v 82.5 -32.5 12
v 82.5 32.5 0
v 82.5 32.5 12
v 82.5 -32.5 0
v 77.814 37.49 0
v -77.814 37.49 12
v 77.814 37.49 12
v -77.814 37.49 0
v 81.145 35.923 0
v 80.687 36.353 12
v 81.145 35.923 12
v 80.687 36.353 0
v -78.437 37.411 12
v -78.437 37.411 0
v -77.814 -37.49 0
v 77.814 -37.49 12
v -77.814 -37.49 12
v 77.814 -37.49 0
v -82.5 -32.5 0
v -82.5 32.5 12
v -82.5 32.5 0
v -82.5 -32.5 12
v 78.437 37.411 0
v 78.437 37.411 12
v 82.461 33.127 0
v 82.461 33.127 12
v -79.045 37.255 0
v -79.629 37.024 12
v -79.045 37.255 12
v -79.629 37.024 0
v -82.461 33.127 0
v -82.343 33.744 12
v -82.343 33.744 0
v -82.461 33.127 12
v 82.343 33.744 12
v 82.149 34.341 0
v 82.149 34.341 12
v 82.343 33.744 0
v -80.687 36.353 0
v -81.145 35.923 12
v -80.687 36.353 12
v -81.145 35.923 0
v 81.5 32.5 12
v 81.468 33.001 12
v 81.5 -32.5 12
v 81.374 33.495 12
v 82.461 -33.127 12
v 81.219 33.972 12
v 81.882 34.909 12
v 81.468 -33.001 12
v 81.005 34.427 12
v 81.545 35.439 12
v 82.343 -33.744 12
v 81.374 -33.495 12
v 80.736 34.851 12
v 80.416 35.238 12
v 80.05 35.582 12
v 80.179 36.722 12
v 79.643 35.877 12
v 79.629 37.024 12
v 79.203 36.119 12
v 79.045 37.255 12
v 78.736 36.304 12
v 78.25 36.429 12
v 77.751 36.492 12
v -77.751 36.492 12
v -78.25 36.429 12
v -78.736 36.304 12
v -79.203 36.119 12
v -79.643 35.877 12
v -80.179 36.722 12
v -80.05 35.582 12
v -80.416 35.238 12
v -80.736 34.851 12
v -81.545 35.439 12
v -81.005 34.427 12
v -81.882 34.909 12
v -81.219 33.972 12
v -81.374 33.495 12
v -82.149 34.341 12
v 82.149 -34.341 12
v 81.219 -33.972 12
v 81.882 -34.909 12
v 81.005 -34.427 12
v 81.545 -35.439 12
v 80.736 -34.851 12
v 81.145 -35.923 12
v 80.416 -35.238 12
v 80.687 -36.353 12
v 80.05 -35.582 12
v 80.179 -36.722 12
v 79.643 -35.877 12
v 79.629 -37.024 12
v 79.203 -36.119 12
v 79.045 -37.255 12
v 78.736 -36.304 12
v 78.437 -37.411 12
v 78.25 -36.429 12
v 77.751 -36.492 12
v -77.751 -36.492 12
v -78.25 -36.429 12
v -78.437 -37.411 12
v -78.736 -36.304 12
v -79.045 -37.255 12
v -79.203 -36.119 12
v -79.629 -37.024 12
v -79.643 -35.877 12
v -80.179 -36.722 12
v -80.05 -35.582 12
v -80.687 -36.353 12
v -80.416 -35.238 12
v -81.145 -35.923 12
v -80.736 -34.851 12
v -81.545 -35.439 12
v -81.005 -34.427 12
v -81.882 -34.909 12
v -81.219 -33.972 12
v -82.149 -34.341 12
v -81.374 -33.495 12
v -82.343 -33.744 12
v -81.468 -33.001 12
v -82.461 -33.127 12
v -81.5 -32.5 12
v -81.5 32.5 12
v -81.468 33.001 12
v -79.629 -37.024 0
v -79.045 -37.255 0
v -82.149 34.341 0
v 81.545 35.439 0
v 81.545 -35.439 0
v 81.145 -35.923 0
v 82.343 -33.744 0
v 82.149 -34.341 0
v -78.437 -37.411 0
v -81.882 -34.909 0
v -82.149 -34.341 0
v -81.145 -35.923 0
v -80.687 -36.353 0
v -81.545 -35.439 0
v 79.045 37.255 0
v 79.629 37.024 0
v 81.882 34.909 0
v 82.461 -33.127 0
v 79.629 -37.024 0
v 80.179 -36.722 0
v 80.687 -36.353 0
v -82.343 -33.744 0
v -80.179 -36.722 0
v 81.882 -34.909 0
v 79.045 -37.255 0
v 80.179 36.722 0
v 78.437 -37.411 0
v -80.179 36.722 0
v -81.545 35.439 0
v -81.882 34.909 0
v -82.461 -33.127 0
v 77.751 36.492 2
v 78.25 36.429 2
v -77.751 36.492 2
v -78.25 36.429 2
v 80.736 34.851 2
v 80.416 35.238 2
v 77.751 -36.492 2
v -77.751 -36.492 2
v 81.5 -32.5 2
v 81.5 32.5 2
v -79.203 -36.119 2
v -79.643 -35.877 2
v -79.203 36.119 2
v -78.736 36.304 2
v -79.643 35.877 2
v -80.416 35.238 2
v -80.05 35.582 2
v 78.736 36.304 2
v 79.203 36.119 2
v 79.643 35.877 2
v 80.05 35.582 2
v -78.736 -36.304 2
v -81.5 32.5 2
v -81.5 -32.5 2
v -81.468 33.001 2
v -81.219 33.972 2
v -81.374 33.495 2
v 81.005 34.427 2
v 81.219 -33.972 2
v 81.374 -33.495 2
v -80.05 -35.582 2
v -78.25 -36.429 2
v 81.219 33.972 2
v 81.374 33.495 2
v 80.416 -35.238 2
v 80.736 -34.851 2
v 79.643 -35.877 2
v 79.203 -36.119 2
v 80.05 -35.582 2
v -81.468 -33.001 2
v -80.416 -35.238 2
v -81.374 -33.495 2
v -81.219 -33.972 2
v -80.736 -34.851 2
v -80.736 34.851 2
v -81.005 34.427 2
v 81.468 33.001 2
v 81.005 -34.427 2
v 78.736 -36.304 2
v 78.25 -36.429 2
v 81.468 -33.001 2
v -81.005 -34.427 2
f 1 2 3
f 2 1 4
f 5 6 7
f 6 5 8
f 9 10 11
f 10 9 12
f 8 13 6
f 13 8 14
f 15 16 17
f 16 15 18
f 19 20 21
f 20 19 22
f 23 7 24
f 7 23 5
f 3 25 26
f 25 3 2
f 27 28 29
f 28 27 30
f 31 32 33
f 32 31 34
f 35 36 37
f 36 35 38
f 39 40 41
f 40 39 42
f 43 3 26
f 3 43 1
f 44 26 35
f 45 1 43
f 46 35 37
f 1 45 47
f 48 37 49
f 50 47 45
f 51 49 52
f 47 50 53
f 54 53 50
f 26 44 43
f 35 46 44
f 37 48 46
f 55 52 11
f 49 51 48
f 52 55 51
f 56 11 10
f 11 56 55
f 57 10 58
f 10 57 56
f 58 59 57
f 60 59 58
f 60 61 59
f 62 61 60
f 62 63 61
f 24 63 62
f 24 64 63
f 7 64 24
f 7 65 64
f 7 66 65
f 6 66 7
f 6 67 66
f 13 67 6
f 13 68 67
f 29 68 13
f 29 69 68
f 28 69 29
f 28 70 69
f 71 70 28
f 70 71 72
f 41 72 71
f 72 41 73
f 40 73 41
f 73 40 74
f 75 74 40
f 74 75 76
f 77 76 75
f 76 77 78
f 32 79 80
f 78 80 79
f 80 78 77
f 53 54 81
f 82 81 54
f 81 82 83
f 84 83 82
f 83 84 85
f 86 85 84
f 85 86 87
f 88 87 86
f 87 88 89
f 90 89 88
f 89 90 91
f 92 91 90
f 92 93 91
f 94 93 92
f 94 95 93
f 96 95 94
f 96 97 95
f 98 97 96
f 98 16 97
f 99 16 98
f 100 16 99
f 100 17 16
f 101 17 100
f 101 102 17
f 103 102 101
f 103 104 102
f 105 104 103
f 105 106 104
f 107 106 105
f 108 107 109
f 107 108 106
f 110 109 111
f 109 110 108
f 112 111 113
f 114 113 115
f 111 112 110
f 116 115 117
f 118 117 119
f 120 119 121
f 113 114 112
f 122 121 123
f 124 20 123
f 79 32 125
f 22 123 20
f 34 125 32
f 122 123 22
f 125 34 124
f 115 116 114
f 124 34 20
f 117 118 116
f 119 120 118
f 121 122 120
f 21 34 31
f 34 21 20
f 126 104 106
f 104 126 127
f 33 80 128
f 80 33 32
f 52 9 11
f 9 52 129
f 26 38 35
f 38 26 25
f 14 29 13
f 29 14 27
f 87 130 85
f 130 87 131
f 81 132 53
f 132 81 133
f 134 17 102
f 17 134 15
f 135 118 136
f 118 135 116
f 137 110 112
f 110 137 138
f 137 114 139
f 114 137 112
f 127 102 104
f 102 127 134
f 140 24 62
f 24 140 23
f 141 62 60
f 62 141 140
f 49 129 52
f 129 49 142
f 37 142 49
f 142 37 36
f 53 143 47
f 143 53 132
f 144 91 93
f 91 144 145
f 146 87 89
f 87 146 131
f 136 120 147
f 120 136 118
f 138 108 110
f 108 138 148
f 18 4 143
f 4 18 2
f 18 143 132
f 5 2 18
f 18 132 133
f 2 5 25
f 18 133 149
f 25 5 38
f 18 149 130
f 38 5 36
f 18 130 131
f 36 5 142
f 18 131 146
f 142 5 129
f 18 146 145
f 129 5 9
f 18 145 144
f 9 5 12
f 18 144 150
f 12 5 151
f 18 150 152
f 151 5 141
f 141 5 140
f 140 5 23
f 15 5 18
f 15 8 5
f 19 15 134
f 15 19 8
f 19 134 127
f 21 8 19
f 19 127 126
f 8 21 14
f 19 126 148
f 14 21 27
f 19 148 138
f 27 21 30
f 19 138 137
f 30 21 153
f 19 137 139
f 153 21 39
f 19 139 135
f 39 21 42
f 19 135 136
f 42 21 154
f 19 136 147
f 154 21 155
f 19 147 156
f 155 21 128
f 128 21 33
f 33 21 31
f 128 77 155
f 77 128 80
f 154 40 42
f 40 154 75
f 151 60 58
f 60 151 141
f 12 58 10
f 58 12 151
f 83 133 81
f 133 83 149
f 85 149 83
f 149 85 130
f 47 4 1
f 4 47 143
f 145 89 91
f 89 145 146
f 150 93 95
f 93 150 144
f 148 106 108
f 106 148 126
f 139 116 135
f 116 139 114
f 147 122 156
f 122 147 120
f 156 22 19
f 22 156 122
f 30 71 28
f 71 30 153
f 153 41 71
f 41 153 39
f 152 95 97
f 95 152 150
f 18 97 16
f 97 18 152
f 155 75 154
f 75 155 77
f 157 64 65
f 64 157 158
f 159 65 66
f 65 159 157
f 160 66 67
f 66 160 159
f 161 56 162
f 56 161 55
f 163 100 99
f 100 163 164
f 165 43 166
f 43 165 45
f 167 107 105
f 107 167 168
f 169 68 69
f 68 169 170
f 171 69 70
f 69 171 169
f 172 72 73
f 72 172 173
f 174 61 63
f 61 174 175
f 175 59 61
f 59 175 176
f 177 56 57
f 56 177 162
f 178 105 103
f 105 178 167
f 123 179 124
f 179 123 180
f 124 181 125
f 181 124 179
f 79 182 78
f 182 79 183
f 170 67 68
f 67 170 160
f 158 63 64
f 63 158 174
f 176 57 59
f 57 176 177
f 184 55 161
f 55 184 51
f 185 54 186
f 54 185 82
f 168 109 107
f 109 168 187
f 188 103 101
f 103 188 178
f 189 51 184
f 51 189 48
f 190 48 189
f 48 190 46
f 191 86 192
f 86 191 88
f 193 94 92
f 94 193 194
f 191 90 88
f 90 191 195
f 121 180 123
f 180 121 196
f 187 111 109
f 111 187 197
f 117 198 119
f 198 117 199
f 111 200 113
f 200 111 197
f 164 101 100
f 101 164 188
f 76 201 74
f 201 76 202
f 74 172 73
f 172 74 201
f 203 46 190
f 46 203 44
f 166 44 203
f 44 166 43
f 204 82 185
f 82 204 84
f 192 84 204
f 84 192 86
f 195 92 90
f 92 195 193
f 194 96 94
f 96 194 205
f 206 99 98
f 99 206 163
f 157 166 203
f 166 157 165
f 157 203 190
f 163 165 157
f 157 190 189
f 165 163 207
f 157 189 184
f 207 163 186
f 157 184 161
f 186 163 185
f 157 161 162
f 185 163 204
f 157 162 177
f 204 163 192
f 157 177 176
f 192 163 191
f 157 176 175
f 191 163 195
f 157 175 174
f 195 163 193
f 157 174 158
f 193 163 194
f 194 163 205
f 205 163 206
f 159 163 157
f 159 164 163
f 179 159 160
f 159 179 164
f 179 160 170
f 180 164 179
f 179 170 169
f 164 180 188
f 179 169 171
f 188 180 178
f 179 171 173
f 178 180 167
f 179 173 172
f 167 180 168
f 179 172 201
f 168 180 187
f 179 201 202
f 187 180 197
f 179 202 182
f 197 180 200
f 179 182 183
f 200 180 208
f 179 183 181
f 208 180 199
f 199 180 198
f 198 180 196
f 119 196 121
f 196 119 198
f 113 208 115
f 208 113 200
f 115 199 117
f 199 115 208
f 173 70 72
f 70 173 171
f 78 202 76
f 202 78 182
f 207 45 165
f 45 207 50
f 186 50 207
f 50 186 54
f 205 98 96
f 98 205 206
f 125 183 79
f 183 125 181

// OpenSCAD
$fn = 50;


difference() {
	union() {
		hull() {
			translate(v = [-77.5000000000, 32.5000000000, 0]) {
				cylinder(h = 12, r = 5);
			}
			translate(v = [77.5000000000, 32.5000000000, 0]) {
				cylinder(h = 12, r = 5);
			}
			translate(v = [-77.5000000000, -32.5000000000, 0]) {
				cylinder(h = 12, r = 5);
			}
			translate(v = [77.5000000000, -32.5000000000, 0]) {
				cylinder(h = 12, r = 5);
			}
		}
	}
	union() {
		translate(v = [0, 0, 2]) {
			hull() {
				translate(v = [-77.5000000000, 32.5000000000, 0]) {
					cylinder(h = 10, r = 4);
				}
				translate(v = [77.5000000000, 32.5000000000, 0]) {
					cylinder(h = 10, r = 4);
				}
				translate(v = [-77.5000000000, -32.5000000000, 0]) {
					cylinder(h = 10, r = 4);
				}
				translate(v = [77.5000000000, -32.5000000000, 0]) {
					cylinder(h = 10, r = 4);
				}
			}
		}
	}
}
